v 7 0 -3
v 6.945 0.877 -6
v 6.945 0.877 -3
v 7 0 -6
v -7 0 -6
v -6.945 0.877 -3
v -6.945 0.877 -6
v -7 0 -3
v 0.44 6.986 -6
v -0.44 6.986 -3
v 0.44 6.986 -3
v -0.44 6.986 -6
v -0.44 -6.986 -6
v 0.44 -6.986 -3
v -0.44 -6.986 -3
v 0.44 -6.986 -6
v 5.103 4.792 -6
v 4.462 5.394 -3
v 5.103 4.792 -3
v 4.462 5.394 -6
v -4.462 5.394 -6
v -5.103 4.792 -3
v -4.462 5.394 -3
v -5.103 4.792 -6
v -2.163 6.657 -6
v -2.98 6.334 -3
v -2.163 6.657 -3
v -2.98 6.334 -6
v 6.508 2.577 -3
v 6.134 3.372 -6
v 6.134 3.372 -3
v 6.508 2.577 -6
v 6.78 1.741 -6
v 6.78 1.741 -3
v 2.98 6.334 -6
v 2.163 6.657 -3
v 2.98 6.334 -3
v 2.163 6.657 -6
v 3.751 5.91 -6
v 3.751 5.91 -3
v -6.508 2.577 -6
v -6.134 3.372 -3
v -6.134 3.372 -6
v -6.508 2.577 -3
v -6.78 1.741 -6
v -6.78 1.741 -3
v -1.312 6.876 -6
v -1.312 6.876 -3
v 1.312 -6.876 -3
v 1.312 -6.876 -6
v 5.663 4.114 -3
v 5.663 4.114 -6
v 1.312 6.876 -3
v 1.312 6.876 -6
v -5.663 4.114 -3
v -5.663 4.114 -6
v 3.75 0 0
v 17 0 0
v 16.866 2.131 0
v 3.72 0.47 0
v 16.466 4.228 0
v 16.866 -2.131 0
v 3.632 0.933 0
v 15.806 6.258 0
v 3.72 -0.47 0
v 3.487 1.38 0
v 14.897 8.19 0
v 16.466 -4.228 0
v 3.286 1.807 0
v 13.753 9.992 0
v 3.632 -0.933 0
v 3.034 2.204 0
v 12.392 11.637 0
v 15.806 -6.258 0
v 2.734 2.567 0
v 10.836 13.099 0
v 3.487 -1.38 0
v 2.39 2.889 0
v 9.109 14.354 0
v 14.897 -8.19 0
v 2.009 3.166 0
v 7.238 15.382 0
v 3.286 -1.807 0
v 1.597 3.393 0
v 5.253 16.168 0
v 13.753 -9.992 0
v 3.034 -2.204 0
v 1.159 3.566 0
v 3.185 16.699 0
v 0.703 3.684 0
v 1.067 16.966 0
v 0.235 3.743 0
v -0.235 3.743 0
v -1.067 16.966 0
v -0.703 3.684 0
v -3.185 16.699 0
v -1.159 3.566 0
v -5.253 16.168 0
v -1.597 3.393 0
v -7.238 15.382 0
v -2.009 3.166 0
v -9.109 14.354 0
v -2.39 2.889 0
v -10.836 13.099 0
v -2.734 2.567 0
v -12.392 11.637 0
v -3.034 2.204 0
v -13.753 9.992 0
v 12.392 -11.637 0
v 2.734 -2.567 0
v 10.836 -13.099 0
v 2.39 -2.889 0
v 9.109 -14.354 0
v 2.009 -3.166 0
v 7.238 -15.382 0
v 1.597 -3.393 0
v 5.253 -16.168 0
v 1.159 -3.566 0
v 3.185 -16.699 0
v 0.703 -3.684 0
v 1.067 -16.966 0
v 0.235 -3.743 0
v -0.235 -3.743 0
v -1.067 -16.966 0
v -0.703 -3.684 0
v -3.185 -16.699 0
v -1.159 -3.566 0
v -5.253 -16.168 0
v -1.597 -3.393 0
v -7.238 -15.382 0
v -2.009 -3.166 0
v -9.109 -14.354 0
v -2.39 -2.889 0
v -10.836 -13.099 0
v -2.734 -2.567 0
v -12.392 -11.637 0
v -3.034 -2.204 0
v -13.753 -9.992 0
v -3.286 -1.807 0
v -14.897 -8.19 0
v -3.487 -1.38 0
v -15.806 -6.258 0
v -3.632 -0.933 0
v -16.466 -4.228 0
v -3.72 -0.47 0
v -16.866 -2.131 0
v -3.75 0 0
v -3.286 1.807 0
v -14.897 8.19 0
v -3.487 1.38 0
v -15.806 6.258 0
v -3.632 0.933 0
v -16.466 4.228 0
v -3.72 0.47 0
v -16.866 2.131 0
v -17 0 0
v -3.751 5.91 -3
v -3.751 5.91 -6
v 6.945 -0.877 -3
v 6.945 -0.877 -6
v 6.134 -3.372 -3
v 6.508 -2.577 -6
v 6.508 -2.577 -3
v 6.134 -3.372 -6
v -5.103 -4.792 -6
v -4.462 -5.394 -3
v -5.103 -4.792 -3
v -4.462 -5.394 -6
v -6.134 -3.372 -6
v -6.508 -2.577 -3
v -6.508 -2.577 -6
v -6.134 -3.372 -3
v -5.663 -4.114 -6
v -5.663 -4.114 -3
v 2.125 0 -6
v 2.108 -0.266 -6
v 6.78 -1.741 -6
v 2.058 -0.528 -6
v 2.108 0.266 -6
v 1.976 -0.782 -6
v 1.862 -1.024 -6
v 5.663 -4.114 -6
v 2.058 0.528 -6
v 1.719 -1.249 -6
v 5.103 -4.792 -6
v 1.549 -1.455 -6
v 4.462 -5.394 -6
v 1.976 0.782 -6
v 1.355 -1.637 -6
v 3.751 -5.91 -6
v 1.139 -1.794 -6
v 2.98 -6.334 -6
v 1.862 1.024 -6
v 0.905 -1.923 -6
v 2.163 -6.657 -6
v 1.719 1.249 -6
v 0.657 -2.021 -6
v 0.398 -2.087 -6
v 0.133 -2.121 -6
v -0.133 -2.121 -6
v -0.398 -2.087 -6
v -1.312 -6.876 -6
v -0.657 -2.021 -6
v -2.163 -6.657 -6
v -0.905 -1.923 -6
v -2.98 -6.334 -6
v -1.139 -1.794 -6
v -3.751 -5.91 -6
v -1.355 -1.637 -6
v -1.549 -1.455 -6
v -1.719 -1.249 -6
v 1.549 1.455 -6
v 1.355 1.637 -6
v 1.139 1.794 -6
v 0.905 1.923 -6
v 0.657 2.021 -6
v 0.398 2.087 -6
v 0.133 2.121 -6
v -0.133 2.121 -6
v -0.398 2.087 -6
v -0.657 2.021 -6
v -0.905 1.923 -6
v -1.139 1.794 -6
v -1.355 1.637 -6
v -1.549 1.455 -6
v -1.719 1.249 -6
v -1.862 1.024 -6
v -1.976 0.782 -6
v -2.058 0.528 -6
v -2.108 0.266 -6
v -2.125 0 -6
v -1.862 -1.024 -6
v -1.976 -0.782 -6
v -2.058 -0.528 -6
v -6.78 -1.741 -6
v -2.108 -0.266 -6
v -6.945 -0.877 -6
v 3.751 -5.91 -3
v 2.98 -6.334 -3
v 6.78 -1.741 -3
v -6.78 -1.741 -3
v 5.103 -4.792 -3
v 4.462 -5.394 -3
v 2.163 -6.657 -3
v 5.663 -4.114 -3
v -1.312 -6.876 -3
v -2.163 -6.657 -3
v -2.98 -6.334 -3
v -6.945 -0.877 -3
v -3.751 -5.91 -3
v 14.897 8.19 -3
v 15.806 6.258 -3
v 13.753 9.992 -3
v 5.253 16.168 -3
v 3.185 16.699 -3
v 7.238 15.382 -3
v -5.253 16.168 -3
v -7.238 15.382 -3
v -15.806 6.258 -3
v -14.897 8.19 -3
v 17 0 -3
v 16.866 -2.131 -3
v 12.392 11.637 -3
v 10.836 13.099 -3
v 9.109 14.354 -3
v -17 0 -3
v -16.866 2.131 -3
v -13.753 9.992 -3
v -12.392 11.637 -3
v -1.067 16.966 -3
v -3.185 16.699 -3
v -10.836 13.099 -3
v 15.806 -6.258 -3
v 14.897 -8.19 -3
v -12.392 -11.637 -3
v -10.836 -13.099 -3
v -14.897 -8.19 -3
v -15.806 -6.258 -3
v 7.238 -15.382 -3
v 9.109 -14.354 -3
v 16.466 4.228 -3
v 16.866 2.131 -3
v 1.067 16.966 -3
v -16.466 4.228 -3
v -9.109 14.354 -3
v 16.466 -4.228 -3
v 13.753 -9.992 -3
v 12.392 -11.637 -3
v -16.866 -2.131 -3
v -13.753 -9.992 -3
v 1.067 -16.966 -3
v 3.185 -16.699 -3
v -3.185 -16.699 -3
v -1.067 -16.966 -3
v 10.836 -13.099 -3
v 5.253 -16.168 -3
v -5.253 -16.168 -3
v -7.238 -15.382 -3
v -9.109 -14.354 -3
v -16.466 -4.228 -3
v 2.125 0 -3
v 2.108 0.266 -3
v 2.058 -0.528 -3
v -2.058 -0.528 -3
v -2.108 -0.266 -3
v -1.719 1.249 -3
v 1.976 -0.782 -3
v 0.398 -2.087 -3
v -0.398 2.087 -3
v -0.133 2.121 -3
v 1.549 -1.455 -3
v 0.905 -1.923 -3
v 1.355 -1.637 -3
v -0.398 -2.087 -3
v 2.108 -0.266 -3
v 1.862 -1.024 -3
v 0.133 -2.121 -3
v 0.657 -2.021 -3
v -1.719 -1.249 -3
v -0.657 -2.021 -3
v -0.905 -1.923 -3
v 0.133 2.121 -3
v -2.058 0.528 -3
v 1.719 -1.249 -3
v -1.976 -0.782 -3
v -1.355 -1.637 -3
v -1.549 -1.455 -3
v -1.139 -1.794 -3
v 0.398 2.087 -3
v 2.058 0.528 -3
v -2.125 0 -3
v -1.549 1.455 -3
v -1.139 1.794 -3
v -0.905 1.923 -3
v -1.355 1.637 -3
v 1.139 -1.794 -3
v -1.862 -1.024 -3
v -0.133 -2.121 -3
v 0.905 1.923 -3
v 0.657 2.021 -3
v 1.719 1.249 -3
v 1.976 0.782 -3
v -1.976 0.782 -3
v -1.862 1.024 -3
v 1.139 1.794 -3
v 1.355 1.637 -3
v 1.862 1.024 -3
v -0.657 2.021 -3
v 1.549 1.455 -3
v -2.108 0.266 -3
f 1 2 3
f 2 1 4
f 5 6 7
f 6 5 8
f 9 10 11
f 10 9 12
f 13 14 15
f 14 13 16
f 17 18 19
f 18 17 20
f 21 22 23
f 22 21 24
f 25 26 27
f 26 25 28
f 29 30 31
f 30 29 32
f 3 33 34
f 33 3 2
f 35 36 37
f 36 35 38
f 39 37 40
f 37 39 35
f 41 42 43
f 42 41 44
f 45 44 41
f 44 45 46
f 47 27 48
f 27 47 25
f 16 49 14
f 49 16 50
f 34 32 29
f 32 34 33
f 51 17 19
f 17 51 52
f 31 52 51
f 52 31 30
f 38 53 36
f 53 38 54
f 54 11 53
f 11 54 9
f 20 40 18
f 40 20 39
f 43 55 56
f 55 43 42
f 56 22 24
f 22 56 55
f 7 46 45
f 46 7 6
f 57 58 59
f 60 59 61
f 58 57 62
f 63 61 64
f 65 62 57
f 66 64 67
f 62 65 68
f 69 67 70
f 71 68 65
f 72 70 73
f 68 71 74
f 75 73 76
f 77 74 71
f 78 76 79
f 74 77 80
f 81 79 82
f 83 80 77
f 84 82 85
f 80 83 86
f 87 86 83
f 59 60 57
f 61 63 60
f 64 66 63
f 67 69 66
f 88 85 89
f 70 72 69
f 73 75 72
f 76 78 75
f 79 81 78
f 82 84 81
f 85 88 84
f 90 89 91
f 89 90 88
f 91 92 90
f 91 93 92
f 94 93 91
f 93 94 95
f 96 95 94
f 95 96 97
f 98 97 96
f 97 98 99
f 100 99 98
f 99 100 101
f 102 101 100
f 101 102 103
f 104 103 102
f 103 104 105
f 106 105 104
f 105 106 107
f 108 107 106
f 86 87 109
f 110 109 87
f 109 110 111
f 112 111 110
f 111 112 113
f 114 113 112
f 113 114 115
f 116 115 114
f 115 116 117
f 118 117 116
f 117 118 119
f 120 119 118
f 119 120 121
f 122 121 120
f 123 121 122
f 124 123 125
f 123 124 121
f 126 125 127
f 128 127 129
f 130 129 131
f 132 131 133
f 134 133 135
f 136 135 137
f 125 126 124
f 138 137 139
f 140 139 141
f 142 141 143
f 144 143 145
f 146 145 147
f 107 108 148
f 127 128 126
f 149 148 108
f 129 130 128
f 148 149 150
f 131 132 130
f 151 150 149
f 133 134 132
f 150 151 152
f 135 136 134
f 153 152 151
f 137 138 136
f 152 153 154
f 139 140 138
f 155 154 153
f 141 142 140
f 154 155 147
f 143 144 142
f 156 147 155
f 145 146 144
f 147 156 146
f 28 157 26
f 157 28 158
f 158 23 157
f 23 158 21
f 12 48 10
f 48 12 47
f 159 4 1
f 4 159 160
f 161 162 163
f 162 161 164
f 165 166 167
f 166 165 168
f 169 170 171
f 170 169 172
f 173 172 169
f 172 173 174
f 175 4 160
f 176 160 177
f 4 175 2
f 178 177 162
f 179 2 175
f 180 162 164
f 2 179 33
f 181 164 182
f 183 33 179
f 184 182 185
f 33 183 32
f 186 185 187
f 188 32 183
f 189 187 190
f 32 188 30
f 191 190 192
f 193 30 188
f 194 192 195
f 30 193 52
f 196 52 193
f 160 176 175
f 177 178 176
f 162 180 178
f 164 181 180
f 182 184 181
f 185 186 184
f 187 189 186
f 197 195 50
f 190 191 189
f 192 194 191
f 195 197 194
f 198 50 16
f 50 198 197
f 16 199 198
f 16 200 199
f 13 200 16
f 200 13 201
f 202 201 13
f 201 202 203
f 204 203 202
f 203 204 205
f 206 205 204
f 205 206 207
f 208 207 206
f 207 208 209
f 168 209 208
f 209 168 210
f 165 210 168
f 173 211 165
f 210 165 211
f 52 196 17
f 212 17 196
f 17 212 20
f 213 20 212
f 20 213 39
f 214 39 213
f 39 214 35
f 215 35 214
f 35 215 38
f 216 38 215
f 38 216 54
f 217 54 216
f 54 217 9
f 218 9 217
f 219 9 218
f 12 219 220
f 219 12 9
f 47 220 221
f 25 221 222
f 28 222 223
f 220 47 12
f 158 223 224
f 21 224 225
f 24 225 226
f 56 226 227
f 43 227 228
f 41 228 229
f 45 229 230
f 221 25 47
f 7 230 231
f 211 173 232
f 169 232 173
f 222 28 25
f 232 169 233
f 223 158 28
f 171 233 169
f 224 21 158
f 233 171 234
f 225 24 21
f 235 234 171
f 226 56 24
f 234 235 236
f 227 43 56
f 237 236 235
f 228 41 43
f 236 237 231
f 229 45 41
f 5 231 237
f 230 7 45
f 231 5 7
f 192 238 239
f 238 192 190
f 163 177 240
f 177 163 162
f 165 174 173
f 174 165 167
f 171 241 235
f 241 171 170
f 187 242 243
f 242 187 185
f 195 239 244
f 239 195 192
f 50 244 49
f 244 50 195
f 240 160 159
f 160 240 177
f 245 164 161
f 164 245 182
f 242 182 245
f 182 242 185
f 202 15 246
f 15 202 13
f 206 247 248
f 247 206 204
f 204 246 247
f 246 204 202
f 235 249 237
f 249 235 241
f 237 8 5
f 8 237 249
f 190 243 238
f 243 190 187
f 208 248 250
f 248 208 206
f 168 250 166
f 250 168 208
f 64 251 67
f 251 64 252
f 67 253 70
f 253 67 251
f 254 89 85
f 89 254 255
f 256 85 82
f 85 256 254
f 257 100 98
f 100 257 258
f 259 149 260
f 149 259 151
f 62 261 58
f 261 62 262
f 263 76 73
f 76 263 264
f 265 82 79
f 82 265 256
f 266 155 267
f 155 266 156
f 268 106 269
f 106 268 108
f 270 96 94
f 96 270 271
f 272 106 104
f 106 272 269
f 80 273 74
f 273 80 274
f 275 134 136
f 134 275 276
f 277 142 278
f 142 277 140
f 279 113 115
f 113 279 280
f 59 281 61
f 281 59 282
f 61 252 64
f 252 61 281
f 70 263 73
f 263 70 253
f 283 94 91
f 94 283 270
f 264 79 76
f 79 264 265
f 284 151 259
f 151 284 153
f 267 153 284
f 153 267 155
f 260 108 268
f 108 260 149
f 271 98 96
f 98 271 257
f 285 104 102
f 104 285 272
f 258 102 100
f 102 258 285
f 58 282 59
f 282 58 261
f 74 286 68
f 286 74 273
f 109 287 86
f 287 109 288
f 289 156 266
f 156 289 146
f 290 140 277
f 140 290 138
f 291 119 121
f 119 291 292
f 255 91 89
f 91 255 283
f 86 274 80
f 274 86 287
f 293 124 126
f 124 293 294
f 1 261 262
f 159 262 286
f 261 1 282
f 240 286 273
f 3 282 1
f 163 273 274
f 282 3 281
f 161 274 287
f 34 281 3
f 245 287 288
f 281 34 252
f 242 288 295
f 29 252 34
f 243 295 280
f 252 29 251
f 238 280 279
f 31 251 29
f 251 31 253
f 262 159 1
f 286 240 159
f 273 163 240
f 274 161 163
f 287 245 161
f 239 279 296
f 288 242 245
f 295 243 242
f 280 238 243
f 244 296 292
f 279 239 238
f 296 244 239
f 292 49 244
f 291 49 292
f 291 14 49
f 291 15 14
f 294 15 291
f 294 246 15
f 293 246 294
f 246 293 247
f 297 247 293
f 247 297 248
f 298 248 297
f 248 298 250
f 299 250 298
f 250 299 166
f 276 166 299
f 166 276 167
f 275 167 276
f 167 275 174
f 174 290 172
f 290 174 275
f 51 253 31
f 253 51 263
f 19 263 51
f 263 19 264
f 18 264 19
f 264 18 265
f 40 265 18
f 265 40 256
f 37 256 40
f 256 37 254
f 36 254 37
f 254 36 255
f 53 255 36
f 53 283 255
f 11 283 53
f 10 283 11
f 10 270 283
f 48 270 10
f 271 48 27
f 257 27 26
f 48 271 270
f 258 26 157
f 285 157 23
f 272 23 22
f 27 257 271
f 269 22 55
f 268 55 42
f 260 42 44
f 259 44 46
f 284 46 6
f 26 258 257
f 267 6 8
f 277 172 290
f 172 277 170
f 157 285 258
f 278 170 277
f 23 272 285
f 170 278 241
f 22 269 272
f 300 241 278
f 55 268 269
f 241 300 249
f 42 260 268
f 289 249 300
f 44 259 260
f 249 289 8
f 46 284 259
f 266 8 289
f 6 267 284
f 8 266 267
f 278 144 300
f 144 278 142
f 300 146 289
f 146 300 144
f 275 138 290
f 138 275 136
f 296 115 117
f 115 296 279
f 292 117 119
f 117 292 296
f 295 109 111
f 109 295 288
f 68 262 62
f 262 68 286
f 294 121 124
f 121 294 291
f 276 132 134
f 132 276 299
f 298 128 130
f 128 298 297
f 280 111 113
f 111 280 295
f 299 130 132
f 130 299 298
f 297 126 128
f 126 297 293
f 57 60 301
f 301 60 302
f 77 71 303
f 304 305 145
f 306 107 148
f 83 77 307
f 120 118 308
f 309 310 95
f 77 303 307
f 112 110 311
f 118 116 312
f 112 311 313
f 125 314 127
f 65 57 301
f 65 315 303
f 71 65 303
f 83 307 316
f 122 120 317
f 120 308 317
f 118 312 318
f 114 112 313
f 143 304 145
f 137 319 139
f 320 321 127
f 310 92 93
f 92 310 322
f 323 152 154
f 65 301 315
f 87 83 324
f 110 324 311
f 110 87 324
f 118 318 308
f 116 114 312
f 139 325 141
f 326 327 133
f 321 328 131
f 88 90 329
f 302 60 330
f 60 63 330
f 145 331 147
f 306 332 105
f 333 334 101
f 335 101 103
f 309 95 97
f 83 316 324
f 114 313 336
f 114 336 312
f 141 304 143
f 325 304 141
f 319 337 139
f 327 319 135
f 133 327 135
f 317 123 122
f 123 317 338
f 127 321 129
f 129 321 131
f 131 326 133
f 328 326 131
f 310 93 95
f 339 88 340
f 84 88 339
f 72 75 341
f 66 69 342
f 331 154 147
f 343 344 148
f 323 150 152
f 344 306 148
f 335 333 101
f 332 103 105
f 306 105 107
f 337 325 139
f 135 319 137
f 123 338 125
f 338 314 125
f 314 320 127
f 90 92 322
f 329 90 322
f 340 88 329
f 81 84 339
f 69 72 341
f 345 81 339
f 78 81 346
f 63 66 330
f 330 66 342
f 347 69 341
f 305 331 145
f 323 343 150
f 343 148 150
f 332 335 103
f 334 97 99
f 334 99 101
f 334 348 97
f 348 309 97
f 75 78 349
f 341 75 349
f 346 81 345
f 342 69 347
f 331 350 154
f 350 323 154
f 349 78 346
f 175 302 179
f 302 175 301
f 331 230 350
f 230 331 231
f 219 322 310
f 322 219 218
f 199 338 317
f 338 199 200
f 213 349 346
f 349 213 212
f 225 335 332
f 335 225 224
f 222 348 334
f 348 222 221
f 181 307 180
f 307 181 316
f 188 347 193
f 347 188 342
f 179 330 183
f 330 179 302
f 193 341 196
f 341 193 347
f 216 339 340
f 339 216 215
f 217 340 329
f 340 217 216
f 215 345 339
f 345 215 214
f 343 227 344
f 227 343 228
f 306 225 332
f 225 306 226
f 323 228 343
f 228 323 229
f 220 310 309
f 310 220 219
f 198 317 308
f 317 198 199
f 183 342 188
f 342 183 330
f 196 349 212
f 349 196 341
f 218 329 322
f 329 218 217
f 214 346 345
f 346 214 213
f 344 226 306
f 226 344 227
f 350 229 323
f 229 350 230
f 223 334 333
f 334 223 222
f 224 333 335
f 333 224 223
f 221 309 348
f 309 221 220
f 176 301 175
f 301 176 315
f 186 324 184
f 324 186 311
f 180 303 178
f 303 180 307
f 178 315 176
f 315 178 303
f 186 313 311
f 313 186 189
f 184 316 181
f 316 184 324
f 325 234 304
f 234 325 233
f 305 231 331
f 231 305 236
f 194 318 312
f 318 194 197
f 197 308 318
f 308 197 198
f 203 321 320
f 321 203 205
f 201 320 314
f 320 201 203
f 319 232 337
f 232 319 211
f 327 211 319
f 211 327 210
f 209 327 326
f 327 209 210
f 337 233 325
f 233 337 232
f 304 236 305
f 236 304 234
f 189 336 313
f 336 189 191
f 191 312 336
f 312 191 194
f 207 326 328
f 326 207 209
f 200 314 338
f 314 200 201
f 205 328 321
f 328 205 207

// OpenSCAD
$fn = 50;


difference() {
	union() {
		translate(v = [0, 0, -6.0000000000]) {
			cylinder(h = 6, r = 7.0000000000);
		}
		translate(v = [0, 0, -3.0000000000]) {
			cylinder(h = 3, r = 17.0000000000);
		}
	}
	union() {
		translate(v = [0, 0, 0]) {
			rotate(a = [0, 0, 0]) {
				difference() {
					union() {
						#translate(v = [0, 0, -6.0000000000]) {
							cylinder(h = 6, r = 2.0000000000);
						}
						#translate(v = [0, 0, -3]) {
							cylinder(h = 3, r = 7.0000000000, r1 = 2.1250000000, r2 = 3.7500000000);
						}
						#translate(v = [0, 0, -6.0000000000]) {
							cylinder(h = 6, r = 2.1250000000);
						}
						#translate(v = [0, 0, -6.0000000000]) {
							cylinder(h = 6, r = 2.0000000000);
						}
					}
					union();
				}
			}
		}
	}
}
